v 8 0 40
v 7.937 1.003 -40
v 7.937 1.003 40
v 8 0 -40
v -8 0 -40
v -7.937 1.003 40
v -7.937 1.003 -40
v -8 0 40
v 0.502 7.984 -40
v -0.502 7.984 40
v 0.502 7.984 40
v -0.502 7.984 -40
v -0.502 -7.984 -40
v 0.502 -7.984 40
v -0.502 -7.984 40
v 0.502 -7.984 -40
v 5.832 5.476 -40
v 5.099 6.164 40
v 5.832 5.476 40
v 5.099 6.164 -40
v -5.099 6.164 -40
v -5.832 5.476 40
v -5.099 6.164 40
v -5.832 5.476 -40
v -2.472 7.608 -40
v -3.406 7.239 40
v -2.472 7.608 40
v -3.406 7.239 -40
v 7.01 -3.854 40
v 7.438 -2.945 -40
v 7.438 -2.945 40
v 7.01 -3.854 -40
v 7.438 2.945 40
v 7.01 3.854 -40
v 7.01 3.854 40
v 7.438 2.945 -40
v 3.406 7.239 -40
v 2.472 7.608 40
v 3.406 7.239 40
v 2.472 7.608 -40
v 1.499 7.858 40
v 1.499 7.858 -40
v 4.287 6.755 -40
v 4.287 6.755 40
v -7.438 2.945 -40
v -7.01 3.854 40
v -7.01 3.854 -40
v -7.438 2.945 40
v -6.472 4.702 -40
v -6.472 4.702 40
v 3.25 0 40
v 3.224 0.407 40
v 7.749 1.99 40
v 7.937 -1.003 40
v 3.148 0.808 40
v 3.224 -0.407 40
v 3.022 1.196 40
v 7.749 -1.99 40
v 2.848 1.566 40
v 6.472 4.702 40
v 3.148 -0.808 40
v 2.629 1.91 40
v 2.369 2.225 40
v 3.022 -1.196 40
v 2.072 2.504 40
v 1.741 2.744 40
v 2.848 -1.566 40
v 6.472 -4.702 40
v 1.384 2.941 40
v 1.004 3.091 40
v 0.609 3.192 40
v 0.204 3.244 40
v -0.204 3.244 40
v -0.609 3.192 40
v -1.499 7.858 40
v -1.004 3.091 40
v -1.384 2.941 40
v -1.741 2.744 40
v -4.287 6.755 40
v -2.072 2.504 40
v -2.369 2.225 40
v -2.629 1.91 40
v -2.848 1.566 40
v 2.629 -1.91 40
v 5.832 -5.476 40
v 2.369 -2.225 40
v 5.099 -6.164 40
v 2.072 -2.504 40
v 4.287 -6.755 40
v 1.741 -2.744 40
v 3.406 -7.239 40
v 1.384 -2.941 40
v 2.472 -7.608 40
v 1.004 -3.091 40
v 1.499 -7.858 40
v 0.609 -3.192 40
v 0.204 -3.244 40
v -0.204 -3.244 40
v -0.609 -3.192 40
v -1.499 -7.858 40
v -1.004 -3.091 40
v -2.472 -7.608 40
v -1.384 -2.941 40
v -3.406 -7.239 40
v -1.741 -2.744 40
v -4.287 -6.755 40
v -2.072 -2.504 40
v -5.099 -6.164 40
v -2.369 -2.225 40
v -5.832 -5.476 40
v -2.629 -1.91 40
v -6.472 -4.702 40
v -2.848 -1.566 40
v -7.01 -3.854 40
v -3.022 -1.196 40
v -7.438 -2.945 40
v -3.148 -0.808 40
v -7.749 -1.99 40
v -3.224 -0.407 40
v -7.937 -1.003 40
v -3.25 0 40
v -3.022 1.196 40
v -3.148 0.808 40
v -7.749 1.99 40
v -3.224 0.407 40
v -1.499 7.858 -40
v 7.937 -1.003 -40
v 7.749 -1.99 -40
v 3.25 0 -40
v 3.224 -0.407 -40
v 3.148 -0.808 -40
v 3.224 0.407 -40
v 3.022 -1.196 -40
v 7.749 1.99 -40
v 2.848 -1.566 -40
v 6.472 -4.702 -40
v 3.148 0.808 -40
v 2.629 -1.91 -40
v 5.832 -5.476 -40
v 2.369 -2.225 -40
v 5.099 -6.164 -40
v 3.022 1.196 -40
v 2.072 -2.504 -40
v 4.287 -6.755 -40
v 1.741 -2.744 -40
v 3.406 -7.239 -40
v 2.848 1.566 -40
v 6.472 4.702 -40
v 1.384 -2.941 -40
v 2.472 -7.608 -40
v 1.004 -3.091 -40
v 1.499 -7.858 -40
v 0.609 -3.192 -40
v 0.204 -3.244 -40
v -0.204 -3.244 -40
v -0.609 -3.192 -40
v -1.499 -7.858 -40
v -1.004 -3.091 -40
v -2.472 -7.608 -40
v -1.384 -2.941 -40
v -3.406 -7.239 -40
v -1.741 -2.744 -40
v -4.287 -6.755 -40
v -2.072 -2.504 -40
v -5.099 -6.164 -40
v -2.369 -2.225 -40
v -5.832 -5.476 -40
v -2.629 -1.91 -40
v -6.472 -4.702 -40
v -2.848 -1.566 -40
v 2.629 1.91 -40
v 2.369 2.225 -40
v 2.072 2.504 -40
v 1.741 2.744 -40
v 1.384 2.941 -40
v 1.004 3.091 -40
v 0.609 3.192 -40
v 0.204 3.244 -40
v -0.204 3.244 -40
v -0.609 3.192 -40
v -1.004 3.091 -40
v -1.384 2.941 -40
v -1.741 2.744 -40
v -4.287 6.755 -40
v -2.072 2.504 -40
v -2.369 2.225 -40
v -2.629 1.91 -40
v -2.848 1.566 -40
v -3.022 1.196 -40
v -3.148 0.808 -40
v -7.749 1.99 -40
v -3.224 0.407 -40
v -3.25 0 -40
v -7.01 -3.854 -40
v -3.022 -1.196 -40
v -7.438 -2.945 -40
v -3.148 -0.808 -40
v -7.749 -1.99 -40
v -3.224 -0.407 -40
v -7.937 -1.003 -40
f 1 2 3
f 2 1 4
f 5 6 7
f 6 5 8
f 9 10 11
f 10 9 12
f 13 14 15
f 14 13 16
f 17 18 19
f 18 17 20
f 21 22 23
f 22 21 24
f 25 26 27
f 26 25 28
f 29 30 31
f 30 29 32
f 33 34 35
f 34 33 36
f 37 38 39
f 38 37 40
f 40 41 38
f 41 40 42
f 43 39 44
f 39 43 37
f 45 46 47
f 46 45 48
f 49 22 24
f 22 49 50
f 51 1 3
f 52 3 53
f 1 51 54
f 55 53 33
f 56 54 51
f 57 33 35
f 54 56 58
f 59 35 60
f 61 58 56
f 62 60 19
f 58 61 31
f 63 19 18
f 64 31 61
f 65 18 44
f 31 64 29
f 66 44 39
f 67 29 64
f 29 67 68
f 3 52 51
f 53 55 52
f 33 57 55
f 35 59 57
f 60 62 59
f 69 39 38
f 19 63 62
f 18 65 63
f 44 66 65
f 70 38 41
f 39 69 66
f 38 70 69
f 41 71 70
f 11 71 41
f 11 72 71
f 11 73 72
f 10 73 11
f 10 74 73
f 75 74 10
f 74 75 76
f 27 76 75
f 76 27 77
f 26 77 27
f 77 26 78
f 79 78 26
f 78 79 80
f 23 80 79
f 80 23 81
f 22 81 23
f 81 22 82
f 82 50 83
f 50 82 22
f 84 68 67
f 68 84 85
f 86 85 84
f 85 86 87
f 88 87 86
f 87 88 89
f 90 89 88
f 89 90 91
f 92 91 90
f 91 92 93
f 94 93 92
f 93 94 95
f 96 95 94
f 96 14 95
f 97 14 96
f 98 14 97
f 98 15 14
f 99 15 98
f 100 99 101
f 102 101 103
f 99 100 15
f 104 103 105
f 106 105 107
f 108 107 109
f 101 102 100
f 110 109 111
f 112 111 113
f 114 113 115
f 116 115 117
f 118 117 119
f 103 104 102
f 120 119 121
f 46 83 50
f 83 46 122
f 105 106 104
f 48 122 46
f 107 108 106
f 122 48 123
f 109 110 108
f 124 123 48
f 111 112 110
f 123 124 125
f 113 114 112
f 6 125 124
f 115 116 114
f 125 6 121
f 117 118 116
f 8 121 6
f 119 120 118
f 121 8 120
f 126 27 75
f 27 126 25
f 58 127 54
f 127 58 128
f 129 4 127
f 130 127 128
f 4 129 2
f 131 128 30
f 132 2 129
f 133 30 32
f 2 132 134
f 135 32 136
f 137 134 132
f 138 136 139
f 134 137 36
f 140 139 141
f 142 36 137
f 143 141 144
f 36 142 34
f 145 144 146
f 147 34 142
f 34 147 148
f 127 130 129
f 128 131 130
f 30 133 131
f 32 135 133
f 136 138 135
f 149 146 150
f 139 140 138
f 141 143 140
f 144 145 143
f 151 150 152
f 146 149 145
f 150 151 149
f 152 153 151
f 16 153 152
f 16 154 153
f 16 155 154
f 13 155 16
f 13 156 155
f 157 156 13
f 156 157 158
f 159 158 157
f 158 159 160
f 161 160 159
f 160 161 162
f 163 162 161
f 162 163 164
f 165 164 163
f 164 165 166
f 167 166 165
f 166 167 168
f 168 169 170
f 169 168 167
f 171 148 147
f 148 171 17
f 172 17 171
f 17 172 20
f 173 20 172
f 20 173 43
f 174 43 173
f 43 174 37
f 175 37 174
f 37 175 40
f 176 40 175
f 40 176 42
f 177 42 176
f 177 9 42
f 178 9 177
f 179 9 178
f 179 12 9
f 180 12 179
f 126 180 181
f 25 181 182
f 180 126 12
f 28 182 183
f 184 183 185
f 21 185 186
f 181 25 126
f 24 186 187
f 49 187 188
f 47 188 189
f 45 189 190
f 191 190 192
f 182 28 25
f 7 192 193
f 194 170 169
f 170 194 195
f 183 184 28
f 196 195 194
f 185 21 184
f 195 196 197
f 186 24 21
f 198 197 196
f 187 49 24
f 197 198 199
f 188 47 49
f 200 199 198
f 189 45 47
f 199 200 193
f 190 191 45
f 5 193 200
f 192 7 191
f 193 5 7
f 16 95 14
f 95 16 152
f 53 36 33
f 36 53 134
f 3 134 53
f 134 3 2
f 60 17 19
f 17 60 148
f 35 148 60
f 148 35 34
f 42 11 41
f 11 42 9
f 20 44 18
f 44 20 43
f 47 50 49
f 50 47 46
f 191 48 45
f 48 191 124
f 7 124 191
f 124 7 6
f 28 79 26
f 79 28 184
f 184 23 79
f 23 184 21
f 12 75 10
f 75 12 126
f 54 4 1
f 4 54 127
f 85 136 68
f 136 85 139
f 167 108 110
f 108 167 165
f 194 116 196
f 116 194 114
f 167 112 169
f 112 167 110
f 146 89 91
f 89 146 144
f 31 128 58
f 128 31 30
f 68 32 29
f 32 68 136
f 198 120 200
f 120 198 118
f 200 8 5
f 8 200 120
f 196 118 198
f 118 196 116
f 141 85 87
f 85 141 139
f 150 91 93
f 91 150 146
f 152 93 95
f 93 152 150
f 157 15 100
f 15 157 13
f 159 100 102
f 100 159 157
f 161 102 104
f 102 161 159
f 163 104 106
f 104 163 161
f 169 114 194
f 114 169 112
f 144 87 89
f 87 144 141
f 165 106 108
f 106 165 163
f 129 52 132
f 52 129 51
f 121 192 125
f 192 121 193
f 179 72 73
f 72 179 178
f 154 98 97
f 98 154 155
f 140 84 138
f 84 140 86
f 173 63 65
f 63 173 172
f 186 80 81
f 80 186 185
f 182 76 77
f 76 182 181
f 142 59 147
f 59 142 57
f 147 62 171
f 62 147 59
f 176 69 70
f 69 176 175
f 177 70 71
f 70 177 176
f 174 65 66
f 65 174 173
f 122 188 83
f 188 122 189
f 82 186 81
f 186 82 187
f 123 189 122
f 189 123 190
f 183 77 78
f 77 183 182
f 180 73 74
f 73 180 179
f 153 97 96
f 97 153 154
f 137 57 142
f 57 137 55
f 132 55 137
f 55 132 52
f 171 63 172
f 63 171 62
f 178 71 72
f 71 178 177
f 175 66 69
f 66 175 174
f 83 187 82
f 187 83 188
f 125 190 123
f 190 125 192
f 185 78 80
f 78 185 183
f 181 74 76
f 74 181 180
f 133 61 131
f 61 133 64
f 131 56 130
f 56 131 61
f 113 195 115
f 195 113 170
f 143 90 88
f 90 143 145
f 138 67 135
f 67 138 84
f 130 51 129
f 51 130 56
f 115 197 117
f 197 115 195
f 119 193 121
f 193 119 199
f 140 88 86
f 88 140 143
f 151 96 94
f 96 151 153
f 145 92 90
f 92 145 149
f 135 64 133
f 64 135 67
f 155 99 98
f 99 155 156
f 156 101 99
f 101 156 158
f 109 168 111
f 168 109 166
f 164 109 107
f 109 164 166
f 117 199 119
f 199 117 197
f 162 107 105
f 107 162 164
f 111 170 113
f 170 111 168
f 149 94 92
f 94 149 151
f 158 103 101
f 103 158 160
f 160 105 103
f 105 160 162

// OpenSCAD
$fn = 50;


difference() {
	union() {
		translate(v = [0, 0, -40.0000000000]) {
			cylinder(h = 80, r = 8.0000000000);
		}
	}
	union() {
		translate(v = [0, 0, -100.0000000000]) {
			cylinder(h = 200, r = 3.2500000000);
		}
	}
}
